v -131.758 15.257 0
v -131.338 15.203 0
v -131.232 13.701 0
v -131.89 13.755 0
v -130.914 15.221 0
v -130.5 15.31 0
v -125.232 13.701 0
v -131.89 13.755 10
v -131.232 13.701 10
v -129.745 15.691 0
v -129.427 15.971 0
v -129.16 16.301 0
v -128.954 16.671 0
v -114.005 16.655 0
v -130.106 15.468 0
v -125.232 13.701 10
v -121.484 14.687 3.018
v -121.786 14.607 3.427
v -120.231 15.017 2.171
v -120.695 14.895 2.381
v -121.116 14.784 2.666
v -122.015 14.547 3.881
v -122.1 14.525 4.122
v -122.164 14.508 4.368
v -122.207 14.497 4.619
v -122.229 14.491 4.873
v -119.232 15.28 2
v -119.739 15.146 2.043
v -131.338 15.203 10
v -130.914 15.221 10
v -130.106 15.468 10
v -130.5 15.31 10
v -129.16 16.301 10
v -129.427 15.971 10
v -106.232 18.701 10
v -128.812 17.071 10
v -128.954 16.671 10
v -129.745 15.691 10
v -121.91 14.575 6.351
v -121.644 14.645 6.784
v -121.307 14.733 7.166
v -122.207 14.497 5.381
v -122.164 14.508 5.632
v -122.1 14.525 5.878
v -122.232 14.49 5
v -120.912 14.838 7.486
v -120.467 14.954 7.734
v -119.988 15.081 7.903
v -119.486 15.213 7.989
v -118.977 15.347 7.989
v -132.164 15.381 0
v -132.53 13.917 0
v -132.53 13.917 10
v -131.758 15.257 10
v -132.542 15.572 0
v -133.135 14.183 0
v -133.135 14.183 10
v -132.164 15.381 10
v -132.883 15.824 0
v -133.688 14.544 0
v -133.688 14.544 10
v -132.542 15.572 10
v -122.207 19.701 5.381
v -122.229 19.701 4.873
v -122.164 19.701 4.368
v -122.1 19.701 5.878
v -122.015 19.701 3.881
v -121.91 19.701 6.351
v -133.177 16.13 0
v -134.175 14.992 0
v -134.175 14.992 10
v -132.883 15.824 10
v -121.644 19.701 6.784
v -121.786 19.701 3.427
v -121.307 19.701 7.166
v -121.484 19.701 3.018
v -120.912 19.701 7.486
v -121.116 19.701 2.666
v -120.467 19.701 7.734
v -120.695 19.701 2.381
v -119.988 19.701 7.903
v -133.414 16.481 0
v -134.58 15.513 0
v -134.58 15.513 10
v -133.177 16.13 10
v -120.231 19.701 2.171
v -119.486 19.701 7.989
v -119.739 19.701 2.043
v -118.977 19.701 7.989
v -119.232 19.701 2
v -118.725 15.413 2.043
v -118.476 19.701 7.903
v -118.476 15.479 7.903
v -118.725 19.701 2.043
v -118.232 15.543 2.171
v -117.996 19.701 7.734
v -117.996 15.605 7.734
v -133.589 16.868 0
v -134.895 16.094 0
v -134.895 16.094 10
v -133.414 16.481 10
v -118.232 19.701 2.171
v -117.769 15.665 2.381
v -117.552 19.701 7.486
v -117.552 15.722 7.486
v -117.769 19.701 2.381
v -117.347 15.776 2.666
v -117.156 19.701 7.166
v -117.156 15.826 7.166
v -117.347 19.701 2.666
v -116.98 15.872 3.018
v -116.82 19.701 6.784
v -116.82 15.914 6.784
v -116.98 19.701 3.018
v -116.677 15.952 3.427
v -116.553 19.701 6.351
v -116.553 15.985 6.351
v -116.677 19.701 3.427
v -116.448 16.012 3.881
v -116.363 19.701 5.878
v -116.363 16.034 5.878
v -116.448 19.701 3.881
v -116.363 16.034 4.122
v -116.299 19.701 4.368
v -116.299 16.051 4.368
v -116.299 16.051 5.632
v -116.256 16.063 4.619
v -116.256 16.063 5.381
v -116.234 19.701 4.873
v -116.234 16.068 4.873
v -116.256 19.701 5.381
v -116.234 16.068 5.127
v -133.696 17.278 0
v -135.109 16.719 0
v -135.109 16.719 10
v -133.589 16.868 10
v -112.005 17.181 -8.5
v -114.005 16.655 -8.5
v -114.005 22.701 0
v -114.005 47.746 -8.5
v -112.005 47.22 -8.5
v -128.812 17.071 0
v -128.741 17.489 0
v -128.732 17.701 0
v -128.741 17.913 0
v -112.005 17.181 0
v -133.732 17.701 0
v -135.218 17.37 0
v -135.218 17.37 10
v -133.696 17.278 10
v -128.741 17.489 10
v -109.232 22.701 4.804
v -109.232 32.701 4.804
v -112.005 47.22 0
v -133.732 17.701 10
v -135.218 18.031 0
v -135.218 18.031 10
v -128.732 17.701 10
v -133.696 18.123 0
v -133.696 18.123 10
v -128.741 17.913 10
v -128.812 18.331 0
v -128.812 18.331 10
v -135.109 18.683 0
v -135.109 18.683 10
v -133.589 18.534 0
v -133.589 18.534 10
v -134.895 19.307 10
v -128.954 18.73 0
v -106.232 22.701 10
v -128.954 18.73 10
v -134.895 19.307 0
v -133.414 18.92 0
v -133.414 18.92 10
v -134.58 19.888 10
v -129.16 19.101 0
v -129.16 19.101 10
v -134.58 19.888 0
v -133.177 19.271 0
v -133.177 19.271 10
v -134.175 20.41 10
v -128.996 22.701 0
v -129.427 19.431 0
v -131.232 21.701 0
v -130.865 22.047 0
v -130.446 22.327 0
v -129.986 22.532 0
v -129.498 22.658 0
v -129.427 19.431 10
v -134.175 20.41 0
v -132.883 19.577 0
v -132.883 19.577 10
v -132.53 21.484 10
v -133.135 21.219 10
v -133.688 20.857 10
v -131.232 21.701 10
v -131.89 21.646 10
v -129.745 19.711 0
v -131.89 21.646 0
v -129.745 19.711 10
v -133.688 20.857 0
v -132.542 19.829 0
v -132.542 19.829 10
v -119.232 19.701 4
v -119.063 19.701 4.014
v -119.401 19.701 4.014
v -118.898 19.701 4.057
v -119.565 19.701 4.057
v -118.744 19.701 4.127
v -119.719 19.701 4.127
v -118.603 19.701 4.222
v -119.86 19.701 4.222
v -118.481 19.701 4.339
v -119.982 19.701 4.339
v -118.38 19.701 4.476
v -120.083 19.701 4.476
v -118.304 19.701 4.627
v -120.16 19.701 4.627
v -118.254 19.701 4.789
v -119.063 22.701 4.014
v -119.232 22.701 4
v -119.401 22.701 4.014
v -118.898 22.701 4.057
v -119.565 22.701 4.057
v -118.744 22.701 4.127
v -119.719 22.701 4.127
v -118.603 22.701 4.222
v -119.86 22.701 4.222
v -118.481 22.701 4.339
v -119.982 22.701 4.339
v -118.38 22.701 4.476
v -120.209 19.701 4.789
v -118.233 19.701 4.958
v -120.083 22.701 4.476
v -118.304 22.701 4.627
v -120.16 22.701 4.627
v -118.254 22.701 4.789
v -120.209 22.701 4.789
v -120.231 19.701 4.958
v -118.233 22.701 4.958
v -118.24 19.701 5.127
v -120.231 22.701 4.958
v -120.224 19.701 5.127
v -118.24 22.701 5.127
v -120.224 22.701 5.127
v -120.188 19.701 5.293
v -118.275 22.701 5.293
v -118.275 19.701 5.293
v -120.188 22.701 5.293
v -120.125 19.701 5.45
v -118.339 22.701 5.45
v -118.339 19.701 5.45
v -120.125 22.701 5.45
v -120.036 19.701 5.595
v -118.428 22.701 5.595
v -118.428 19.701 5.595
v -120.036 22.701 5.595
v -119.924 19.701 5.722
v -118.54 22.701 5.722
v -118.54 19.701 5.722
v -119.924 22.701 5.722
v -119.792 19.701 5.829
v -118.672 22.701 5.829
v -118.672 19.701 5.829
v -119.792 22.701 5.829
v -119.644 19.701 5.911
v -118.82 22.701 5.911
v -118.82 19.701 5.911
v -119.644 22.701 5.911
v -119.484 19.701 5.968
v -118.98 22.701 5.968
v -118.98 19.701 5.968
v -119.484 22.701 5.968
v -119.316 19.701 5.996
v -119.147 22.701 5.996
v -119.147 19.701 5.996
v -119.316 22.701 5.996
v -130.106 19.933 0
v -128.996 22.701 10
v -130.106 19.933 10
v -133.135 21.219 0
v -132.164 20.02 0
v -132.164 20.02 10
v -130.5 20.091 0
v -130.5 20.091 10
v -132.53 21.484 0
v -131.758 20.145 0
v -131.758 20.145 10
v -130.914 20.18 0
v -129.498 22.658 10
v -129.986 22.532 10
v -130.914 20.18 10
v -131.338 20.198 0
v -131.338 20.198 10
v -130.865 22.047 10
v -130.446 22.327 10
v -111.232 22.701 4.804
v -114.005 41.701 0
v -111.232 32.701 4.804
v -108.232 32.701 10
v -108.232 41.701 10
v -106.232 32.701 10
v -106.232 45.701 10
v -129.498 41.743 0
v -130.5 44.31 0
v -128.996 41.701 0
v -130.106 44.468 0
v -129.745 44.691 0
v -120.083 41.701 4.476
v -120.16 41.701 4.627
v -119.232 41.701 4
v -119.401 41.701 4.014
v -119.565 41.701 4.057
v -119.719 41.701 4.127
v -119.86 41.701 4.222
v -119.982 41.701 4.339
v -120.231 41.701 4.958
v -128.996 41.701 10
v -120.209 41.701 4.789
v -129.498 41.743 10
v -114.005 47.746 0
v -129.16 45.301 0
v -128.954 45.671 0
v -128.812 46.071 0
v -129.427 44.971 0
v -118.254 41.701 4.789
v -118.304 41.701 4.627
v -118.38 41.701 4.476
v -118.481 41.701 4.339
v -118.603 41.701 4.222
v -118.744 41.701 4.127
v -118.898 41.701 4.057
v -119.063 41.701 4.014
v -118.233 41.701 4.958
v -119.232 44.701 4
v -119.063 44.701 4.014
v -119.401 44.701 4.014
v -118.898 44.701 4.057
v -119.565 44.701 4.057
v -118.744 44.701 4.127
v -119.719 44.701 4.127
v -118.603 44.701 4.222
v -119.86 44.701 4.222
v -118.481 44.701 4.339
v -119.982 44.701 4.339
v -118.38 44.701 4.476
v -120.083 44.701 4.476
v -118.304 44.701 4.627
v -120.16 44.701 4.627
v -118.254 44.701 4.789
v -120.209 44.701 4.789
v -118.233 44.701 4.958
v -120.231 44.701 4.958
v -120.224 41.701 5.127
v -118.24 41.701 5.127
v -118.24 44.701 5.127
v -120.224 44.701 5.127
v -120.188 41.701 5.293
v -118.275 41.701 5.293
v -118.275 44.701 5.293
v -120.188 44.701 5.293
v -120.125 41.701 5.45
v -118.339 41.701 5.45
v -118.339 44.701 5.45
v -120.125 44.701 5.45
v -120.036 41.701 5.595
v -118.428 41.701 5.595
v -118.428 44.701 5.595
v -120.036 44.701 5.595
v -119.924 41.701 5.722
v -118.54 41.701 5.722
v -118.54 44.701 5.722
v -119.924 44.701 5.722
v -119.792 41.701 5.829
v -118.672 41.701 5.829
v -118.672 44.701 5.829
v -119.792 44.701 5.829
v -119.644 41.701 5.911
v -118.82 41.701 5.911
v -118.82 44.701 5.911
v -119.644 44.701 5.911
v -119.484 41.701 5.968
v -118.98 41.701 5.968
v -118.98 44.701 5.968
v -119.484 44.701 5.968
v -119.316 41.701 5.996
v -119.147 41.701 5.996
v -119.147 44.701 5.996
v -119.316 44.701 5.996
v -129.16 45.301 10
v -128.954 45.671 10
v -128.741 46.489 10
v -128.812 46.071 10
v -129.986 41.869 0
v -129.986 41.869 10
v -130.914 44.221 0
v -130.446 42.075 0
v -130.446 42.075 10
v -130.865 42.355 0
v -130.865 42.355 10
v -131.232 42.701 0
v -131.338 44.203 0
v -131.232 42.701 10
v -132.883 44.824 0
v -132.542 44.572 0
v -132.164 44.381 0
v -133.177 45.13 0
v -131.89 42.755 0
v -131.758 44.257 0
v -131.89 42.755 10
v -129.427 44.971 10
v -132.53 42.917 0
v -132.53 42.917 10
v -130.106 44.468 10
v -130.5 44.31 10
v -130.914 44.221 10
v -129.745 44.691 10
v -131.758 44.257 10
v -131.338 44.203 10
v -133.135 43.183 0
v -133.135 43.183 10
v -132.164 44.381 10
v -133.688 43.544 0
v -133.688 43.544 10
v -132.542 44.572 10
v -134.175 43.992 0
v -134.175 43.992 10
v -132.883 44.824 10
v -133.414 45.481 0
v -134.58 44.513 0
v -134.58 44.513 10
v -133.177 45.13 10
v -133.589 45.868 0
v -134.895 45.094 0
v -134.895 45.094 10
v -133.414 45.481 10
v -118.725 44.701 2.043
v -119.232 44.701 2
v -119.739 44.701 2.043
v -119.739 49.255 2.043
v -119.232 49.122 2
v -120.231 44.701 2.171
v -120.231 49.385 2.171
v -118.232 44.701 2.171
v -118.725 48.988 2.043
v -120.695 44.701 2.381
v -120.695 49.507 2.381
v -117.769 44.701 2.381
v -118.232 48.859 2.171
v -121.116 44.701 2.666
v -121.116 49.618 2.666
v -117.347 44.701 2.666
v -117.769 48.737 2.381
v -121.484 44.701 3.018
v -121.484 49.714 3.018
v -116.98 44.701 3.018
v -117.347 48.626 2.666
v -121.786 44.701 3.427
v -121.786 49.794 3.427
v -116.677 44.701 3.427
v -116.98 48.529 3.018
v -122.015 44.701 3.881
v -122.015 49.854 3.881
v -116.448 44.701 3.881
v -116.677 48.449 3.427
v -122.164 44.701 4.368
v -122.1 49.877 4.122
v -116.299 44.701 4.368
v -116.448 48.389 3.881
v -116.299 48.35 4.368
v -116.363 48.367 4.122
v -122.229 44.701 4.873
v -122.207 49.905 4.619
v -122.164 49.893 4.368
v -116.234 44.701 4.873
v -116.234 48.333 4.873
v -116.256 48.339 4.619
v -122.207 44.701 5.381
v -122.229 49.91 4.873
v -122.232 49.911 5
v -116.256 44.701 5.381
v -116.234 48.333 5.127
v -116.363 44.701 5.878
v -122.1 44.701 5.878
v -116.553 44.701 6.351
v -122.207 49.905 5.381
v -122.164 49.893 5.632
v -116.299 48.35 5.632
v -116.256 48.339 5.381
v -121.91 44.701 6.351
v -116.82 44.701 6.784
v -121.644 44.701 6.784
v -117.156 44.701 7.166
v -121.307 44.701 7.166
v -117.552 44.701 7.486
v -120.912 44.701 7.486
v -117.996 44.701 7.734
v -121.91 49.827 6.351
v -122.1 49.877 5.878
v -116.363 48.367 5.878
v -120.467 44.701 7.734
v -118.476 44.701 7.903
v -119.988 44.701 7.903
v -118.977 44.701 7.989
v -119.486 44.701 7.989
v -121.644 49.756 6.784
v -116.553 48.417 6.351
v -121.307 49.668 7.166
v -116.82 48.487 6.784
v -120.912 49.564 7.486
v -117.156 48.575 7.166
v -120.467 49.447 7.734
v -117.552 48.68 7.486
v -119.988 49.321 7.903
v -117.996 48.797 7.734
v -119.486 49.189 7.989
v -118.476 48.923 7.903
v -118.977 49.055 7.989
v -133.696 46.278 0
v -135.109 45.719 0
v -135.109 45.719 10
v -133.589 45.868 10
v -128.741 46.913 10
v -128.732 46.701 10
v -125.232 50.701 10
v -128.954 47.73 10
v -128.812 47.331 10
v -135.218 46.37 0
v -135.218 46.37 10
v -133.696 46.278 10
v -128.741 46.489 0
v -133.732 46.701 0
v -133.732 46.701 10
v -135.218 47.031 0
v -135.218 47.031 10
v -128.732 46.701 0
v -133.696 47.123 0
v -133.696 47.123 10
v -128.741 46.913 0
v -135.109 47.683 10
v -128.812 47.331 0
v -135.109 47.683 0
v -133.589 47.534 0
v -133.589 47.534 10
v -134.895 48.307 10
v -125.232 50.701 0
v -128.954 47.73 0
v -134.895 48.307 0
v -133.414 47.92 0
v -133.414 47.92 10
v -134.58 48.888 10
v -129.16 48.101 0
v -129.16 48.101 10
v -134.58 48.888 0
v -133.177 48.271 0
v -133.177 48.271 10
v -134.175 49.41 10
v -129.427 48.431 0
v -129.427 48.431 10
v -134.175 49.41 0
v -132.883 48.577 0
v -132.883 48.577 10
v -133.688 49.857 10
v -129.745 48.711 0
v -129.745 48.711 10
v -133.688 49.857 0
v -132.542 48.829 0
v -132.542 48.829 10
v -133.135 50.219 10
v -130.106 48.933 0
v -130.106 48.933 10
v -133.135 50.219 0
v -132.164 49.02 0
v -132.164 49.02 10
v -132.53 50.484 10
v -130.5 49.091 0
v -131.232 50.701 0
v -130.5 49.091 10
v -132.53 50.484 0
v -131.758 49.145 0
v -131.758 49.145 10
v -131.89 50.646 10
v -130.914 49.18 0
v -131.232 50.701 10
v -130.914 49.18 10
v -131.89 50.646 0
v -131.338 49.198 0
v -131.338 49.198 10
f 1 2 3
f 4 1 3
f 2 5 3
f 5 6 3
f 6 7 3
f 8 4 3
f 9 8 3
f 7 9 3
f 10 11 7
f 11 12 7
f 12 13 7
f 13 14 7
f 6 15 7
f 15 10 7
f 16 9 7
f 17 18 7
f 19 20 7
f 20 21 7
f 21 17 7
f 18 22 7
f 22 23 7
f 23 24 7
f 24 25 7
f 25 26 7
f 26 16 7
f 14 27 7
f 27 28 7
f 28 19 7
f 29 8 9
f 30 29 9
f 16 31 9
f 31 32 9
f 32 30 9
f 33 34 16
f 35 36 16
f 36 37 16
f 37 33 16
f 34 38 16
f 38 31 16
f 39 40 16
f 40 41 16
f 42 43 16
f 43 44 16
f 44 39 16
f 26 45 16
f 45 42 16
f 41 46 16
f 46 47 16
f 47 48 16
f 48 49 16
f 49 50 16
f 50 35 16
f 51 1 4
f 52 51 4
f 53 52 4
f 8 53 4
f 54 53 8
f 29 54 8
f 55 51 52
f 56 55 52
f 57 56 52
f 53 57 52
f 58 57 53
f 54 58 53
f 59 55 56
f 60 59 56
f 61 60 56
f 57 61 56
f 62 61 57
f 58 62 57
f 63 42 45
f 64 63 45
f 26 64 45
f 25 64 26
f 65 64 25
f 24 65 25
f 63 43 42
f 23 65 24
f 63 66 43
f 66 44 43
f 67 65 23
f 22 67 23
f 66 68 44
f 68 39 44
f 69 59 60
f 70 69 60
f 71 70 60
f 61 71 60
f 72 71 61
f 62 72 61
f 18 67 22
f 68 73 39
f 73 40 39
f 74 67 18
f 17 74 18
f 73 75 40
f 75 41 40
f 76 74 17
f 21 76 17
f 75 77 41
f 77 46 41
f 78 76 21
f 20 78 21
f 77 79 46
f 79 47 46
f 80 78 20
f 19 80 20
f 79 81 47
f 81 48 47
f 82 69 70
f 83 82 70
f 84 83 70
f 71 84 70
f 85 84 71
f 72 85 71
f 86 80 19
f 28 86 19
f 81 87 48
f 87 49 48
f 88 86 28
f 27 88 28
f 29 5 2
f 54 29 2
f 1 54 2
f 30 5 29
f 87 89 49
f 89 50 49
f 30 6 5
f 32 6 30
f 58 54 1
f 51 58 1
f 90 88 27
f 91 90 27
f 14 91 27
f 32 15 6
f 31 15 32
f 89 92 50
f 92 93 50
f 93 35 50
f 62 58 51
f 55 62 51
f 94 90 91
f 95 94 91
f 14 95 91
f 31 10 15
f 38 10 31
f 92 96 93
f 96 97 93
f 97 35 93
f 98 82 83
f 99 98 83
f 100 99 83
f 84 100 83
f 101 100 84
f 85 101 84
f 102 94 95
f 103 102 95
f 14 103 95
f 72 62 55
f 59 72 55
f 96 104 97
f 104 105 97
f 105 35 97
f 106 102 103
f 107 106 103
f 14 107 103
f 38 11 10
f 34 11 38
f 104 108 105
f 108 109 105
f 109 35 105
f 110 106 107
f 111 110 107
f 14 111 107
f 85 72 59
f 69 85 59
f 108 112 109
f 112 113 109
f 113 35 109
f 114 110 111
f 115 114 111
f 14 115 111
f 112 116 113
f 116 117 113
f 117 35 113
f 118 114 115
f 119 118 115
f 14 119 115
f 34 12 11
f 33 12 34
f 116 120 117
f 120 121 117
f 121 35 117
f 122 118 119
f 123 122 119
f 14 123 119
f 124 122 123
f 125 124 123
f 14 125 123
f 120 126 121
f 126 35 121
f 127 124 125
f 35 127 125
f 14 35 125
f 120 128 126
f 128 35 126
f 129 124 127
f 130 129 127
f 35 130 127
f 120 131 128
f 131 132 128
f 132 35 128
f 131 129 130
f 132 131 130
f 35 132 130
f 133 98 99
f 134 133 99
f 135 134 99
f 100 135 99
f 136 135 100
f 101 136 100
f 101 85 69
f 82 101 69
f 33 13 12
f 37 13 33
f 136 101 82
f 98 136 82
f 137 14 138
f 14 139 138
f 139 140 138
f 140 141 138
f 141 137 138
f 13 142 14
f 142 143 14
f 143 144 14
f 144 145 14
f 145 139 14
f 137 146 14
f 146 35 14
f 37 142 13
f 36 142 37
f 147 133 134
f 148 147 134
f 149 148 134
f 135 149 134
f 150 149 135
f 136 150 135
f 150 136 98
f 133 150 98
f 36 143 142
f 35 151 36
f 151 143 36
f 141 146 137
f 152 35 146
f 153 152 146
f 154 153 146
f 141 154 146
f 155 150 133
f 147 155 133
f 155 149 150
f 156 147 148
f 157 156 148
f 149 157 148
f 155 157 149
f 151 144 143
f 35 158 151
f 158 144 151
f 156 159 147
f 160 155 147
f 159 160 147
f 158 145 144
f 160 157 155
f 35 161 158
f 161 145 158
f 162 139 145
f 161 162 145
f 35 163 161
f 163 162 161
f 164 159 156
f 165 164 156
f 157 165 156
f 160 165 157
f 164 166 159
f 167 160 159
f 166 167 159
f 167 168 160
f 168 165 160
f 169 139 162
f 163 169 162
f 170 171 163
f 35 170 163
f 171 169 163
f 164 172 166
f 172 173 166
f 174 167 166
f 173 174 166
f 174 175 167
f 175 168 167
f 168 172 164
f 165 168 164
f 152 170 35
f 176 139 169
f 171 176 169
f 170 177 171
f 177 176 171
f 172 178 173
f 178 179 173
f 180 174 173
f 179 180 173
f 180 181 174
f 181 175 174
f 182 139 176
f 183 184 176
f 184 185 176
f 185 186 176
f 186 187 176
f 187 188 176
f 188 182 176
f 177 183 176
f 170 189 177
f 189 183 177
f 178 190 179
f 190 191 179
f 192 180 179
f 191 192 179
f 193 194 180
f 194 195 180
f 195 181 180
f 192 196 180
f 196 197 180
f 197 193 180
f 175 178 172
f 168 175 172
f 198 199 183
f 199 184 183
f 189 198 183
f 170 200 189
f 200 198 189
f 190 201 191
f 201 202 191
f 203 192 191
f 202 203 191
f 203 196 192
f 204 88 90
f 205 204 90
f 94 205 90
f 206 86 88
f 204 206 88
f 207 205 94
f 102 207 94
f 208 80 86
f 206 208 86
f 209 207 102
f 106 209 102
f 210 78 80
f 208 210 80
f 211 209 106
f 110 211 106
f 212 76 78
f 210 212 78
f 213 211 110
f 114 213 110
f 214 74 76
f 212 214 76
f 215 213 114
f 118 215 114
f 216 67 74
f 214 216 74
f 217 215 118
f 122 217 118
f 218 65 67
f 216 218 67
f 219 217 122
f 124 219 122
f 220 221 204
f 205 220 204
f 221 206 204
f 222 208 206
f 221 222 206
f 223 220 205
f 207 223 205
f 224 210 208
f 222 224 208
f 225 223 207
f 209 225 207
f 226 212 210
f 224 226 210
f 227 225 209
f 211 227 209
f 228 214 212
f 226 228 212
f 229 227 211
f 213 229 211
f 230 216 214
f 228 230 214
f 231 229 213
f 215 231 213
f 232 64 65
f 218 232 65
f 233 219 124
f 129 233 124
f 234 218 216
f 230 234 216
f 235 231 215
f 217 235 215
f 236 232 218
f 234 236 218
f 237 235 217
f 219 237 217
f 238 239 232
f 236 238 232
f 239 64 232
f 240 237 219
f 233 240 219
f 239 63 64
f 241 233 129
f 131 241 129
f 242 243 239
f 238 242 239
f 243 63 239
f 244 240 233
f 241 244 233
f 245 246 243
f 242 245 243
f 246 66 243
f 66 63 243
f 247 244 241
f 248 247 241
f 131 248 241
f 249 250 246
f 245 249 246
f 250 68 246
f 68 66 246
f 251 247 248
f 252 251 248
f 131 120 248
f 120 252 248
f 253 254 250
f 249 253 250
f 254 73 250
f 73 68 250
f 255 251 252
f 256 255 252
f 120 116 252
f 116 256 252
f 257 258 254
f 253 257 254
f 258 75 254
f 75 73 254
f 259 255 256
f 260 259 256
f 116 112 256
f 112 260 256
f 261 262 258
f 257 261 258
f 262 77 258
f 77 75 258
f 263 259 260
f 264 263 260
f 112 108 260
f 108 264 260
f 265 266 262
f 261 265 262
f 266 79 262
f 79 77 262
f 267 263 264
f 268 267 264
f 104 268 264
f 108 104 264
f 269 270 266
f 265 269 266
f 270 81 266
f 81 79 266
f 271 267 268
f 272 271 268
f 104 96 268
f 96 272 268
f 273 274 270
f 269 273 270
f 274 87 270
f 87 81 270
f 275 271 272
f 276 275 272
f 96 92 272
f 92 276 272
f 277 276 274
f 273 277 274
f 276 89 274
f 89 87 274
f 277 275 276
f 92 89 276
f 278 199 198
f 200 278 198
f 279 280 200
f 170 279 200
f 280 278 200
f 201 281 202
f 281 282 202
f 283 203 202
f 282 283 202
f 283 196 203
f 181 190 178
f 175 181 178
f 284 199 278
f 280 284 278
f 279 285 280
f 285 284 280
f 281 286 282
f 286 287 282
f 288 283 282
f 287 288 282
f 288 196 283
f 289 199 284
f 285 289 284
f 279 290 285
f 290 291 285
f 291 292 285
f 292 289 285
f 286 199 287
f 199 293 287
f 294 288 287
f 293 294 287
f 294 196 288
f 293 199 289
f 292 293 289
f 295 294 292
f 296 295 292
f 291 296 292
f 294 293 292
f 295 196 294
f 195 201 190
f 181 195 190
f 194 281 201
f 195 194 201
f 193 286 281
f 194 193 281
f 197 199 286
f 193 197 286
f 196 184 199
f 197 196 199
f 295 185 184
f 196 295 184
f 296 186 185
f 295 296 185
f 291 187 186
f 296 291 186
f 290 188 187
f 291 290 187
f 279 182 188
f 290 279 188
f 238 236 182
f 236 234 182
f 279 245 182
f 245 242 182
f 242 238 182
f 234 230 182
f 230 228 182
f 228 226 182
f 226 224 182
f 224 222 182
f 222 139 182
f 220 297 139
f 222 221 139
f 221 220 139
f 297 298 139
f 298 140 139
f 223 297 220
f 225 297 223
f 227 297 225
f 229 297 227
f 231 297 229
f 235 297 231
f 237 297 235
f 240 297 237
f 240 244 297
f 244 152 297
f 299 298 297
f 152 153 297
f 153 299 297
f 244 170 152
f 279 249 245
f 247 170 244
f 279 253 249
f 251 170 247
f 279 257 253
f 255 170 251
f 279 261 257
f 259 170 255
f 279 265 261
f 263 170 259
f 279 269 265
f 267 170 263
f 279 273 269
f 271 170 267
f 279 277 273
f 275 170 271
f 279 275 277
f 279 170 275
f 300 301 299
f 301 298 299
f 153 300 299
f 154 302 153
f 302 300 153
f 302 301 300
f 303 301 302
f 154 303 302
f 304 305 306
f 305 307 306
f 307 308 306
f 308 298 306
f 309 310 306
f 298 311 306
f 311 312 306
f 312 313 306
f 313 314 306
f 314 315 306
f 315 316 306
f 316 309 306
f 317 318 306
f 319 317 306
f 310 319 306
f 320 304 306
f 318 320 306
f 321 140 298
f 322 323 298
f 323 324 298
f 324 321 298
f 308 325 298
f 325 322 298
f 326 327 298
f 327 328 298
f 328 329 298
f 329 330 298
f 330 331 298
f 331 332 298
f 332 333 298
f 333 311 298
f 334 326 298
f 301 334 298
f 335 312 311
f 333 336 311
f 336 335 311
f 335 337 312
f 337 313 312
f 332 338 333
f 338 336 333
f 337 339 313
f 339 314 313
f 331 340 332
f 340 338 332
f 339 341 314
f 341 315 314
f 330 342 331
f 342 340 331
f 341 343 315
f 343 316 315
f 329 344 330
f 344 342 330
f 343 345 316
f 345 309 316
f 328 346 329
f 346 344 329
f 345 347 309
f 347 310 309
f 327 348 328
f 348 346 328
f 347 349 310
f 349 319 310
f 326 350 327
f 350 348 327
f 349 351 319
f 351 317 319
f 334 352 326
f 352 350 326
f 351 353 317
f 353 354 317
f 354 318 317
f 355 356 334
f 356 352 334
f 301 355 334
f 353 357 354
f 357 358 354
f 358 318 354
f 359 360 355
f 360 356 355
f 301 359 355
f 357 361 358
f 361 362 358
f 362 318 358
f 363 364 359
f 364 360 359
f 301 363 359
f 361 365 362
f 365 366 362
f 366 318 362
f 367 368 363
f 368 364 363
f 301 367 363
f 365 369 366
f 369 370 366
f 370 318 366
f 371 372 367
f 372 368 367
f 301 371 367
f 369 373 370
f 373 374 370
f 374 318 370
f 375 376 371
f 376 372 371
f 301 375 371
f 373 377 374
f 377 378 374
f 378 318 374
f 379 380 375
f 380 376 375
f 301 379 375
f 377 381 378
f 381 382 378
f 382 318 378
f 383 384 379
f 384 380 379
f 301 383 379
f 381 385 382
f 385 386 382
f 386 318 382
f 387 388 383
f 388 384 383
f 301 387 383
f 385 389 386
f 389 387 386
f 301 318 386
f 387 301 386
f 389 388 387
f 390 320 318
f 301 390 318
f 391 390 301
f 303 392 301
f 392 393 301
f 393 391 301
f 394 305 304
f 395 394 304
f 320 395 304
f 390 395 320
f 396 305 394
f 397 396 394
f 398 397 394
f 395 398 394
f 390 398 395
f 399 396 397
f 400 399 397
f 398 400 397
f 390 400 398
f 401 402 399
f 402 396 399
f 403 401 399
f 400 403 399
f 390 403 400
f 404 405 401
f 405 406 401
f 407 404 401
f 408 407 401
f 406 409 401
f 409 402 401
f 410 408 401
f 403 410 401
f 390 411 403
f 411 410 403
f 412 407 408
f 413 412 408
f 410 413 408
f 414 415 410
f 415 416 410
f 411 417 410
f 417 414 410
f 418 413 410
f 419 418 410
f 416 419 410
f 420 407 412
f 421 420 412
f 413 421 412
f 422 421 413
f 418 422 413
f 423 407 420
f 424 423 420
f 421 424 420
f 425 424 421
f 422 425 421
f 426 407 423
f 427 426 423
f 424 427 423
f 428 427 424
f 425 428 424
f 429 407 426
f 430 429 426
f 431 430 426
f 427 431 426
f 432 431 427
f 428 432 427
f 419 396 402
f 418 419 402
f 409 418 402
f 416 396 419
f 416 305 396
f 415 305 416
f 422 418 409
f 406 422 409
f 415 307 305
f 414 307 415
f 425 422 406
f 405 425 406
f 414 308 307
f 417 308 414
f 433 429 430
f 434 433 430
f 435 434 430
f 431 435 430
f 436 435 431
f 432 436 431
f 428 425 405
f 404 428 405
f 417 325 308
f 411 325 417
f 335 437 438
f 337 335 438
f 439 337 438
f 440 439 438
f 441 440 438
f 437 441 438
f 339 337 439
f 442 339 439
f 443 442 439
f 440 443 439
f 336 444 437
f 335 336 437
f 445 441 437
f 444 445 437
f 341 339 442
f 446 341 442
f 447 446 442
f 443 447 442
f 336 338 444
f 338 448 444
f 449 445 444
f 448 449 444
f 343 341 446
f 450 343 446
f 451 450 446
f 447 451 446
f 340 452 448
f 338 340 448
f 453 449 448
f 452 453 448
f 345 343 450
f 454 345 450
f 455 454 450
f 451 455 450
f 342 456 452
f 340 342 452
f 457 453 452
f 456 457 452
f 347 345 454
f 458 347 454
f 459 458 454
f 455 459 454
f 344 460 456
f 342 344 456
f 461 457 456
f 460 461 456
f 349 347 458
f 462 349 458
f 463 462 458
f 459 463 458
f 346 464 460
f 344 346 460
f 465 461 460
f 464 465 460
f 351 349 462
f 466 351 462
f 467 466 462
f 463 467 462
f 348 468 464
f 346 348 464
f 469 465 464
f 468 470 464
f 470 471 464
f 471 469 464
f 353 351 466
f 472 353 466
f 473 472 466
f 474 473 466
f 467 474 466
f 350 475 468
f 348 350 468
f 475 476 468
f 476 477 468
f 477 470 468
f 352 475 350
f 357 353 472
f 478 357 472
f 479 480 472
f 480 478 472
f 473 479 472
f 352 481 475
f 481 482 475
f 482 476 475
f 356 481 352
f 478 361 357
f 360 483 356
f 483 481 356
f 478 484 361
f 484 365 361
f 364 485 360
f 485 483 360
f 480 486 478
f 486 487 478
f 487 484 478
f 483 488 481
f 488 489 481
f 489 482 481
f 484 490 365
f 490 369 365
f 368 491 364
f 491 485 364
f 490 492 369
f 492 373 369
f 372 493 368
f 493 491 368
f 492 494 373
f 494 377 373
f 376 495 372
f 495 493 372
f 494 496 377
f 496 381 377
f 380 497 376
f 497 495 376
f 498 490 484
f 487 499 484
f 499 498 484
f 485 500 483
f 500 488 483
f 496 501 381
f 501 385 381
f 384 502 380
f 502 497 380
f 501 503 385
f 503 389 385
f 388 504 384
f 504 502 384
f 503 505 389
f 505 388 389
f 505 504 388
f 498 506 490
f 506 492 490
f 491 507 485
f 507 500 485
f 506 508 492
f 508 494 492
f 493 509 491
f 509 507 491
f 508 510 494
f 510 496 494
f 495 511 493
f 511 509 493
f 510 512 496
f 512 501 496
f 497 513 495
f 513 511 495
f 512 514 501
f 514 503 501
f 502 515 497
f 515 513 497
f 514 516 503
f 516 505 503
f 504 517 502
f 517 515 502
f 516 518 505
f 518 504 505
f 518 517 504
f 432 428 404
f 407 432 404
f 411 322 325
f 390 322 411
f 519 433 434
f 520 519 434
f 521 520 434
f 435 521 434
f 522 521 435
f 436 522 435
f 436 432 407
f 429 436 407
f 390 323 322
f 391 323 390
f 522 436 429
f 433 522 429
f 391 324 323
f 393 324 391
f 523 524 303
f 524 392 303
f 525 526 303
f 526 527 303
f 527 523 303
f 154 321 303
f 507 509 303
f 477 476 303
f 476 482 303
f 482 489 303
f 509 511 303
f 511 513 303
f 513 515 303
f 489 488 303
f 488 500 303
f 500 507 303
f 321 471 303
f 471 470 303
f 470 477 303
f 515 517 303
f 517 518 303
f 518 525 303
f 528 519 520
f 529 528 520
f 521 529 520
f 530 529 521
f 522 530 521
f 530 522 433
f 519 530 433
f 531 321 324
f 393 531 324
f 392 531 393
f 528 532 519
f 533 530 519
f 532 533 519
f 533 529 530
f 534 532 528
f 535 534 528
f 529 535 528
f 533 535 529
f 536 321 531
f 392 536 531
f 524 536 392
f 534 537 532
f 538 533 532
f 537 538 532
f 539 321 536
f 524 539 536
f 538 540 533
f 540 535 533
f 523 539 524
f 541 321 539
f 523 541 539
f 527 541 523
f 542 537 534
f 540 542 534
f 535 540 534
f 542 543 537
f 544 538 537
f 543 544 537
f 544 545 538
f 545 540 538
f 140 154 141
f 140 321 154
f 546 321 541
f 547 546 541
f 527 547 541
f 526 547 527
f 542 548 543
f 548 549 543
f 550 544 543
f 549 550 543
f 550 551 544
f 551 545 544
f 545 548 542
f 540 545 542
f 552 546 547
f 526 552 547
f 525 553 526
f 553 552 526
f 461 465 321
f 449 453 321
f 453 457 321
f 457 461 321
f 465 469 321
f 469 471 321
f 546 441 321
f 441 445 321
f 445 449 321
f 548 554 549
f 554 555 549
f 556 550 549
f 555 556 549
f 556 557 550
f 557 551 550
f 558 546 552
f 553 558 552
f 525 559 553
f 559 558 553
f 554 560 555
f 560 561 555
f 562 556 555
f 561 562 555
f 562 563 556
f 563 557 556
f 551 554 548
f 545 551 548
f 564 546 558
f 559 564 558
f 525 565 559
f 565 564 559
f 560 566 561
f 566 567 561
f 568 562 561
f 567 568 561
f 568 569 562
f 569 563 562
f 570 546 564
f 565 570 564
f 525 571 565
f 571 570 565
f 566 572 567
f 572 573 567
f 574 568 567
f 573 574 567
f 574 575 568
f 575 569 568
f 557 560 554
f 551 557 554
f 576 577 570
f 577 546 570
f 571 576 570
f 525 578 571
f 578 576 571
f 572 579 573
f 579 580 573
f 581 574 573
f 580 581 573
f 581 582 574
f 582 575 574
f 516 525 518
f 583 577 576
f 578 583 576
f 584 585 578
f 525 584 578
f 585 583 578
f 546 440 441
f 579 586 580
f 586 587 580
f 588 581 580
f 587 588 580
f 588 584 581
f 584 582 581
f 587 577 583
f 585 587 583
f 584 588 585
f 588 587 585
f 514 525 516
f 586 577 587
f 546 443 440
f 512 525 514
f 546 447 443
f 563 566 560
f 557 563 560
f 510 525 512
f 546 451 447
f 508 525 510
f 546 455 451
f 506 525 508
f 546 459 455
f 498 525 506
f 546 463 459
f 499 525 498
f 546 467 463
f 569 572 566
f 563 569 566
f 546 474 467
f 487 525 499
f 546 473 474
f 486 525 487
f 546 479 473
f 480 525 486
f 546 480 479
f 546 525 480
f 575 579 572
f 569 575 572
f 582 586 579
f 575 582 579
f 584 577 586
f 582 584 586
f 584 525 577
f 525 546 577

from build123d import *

# Parameters (mm, degrees)
CROQUIS1_R              = 2.5
SALIENTE_EXTRUIR1_DEPTH = 10
CROQUIS2_R              = 1
CORTAR_EXTRUIR1_DEPTH   = 4
SALIENTE_EXTRUIR2_DEPTH = 13.5
CROQUIS4_R              = 3
CORTAR_EXTRUIR2_DEPTH   = 1
SALIENTE_EXTRUIR3_START = 5
CROQUIS6_R              = 3
SALIENTE_EXTRUIR3_DEPTH = 5
CORTAR_EXTRUIR3_DEPTH   = 10
SALIENTE_EXTRUIR4_DEPTH = 8.5
CROQUIS5_W              = 2
CROQUIS5_H              = 10
CORTAR_EXTRUIR4_DEPTH   = 6
REDONDEO1_R             = 3


with BuildPart() as part:
    # Croquis1 → Saliente-Extruir1 (new body)
    with BuildSketch(Plane.XY):
        with BuildLine():
            Line((-106.231635218, 22.700651543), (-131.231635218, 22.700651543))
            Line((-131.231635218, 22.700651543), (-131.231635218, 21.700651543))
            ThreePointArc((-131.231635218, 21.700651543), (-135.231635218, 17.700651543), (-131.231635218, 13.700651543))
            Line((-131.231635218, 13.700651543), (-125.231635218, 13.700651543))
            Line((-125.231635218, 13.700651543), (-125.231635218, 18.700651543))
            Line((-125.231635218, 18.700651543), (-106.231635218, 18.700651543))
            Line((-106.231635218, 18.700651543), (-106.231635218, 22.700651543))
        make_face()
        with Locations((-131.231635218, 17.700651543)):
            Circle(CROQUIS1_R, mode=Mode.SUBTRACT)
    extrude(amount=SALIENTE_EXTRUIR1_DEPTH)

    # Croquis2 → Cortar-Extruir1 (cut)
    with BuildSketch(Plane.XZ.offset(-18.700651543)):
        with Locations(Location((-119.231635218, 5, 0), (0, 0, 270))):
            Circle(CROQUIS2_R)
        Polygon((-106.231635218, 0), (-106.231635218, 10), (-112.00513791, 0), align=None)
    extrude(amount=-CORTAR_EXTRUIR1_DEPTH, mode=Mode.SUBTRACT)

    # Croquis3 → Saliente-Extruir2 (add)
    with BuildSketch(Plane.XZ.offset(-18.700651543)):
        Polygon((-106.231635218, 10), (-108.231635218, 10), (-114.00513791, 0), (-112.00513791, 0), align=None)
    extrude(amount=-SALIENTE_EXTRUIR2_DEPTH)

    # Croquis4 → Cortar-Extruir2 (cut)
    with BuildSketch(Plane.XZ.offset(-18.700651543)):
        with Locations(Location((-119.231635218, 5, 0), (0, 0, 270))):
            Circle(CROQUIS4_R)
    extrude(amount=-CORTAR_EXTRUIR2_DEPTH, mode=Mode.SUBTRACT)

    # Croquis6 → Saliente-Extruir3 (add)
    with BuildSketch(Plane.XZ.offset(-18.700651543).offset(SALIENTE_EXTRUIR3_START)):
        Polygon((-106.231635218, 10), (-125.231635218, 10), (-125.231635218, 0), (-112.00513791, 0), align=None)
        with Locations(Location((-119.231635218, 5, 0), (0, 0, 270))):
            Circle(CROQUIS6_R, mode=Mode.SUBTRACT)
    extrude(amount=-SALIENTE_EXTRUIR3_DEPTH)

    # Croquis7 → Cortar-Extruir3 (cut)
    with BuildSketch(Plane.XY.offset(10)):
        Polygon((-106.231635218, 18.700651543), (-106.231635218, 13.700651543), (-125.231635218, 13.700651543), align=None)
    extrude(amount=-CORTAR_EXTRUIR3_DEPTH, mode=Mode.SUBTRACT)

    # Croquis8 → Saliente-Extruir4 (add)
    with BuildSketch(Plane(origin=(0, 0, 0), x_dir=(-1, 0, 0), z_dir=(0, 0, -1))):
        Polygon((112.00513791, 17.181308729), (112.00513791, 32.200651543), (114.00513791, 32.200651543), (114.00513791, 16.65499294), align=None)
    extrude(amount=SALIENTE_EXTRUIR4_DEPTH)

    # Simetría1: part across plane


with BuildPart() as part_1:
    add(part.part)
    add(part.part.mirror(Plane(origin=(0, 32.200651543, 0), x_dir=(0, 0, 1), z_dir=(0, -1, 0))))

    # Croquis5 → Cortar-Extruir4 (cut, along a direction that is not the sketch's normal)
    with BuildSketch(Plane.XY.offset(10)):
        with Locations((-107.231635218, 27.700651543)):
            Rectangle(CROQUIS5_W, CROQUIS5_H)
    extrude(amount=-CORTAR_EXTRUIR4_DEPTH, dir=(0.49999999999999506, 0, 0.8660254037844416), mode=Mode.SUBTRACT)

    # Redondeo1
    # the kernel refuses this fillet: 3 mm, written as the material it takes off along each edge
    with BuildSketch(Plane(origin=(-131.231635218, 41.700651543, -5.590169944), x_dir=(1, 0, 0), z_dir=(0, 0, 1))) as redondeo1_piece_1:
        with BuildLine():
            CenterArc((2.236067977, 3), REDONDEO1_R, 221.810314896, 48.189685104)
            Line((0, 1), (-0.04472136, 0.96))
            ThreePointArc((-0.04472136, 0.96), (-0.06, 0.5), (-0.06, 0))
            Line((-0.06, 0), (0, -0.06))
            Line((0, -0.06), (2.236067977, -0.06))
            Line((2.236067977, -0.06), (2.236067977, 0))
        make_face()
    extrude(amount=21.180339887, mode=Mode.SUBTRACT)
    with BuildSketch(Plane(origin=(-131.231635218, 22.700651543, -5.590169944), x_dir=(0, -1, 0), z_dir=(0, 0, 1))) as redondeo1_piece_2:
        with BuildLine():
            CenterArc((3, 2.236067977), REDONDEO1_R, 180, 48.189685104)
            Line((0, 2.236067977), (-0.06, 2.236067977))
            Line((-0.06, 2.236067977), (-0.06, 0))
            Line((-0.06, 0), (0, -0.06))
            ThreePointArc((0, -0.06), (0.5, -0.06), (0.96, -0.04472136))
            Line((0.96, -0.04472136), (1, 0))
        make_face()
    extrude(amount=21.180339887, mode=Mode.SUBTRACT)


solid = part_1.part
